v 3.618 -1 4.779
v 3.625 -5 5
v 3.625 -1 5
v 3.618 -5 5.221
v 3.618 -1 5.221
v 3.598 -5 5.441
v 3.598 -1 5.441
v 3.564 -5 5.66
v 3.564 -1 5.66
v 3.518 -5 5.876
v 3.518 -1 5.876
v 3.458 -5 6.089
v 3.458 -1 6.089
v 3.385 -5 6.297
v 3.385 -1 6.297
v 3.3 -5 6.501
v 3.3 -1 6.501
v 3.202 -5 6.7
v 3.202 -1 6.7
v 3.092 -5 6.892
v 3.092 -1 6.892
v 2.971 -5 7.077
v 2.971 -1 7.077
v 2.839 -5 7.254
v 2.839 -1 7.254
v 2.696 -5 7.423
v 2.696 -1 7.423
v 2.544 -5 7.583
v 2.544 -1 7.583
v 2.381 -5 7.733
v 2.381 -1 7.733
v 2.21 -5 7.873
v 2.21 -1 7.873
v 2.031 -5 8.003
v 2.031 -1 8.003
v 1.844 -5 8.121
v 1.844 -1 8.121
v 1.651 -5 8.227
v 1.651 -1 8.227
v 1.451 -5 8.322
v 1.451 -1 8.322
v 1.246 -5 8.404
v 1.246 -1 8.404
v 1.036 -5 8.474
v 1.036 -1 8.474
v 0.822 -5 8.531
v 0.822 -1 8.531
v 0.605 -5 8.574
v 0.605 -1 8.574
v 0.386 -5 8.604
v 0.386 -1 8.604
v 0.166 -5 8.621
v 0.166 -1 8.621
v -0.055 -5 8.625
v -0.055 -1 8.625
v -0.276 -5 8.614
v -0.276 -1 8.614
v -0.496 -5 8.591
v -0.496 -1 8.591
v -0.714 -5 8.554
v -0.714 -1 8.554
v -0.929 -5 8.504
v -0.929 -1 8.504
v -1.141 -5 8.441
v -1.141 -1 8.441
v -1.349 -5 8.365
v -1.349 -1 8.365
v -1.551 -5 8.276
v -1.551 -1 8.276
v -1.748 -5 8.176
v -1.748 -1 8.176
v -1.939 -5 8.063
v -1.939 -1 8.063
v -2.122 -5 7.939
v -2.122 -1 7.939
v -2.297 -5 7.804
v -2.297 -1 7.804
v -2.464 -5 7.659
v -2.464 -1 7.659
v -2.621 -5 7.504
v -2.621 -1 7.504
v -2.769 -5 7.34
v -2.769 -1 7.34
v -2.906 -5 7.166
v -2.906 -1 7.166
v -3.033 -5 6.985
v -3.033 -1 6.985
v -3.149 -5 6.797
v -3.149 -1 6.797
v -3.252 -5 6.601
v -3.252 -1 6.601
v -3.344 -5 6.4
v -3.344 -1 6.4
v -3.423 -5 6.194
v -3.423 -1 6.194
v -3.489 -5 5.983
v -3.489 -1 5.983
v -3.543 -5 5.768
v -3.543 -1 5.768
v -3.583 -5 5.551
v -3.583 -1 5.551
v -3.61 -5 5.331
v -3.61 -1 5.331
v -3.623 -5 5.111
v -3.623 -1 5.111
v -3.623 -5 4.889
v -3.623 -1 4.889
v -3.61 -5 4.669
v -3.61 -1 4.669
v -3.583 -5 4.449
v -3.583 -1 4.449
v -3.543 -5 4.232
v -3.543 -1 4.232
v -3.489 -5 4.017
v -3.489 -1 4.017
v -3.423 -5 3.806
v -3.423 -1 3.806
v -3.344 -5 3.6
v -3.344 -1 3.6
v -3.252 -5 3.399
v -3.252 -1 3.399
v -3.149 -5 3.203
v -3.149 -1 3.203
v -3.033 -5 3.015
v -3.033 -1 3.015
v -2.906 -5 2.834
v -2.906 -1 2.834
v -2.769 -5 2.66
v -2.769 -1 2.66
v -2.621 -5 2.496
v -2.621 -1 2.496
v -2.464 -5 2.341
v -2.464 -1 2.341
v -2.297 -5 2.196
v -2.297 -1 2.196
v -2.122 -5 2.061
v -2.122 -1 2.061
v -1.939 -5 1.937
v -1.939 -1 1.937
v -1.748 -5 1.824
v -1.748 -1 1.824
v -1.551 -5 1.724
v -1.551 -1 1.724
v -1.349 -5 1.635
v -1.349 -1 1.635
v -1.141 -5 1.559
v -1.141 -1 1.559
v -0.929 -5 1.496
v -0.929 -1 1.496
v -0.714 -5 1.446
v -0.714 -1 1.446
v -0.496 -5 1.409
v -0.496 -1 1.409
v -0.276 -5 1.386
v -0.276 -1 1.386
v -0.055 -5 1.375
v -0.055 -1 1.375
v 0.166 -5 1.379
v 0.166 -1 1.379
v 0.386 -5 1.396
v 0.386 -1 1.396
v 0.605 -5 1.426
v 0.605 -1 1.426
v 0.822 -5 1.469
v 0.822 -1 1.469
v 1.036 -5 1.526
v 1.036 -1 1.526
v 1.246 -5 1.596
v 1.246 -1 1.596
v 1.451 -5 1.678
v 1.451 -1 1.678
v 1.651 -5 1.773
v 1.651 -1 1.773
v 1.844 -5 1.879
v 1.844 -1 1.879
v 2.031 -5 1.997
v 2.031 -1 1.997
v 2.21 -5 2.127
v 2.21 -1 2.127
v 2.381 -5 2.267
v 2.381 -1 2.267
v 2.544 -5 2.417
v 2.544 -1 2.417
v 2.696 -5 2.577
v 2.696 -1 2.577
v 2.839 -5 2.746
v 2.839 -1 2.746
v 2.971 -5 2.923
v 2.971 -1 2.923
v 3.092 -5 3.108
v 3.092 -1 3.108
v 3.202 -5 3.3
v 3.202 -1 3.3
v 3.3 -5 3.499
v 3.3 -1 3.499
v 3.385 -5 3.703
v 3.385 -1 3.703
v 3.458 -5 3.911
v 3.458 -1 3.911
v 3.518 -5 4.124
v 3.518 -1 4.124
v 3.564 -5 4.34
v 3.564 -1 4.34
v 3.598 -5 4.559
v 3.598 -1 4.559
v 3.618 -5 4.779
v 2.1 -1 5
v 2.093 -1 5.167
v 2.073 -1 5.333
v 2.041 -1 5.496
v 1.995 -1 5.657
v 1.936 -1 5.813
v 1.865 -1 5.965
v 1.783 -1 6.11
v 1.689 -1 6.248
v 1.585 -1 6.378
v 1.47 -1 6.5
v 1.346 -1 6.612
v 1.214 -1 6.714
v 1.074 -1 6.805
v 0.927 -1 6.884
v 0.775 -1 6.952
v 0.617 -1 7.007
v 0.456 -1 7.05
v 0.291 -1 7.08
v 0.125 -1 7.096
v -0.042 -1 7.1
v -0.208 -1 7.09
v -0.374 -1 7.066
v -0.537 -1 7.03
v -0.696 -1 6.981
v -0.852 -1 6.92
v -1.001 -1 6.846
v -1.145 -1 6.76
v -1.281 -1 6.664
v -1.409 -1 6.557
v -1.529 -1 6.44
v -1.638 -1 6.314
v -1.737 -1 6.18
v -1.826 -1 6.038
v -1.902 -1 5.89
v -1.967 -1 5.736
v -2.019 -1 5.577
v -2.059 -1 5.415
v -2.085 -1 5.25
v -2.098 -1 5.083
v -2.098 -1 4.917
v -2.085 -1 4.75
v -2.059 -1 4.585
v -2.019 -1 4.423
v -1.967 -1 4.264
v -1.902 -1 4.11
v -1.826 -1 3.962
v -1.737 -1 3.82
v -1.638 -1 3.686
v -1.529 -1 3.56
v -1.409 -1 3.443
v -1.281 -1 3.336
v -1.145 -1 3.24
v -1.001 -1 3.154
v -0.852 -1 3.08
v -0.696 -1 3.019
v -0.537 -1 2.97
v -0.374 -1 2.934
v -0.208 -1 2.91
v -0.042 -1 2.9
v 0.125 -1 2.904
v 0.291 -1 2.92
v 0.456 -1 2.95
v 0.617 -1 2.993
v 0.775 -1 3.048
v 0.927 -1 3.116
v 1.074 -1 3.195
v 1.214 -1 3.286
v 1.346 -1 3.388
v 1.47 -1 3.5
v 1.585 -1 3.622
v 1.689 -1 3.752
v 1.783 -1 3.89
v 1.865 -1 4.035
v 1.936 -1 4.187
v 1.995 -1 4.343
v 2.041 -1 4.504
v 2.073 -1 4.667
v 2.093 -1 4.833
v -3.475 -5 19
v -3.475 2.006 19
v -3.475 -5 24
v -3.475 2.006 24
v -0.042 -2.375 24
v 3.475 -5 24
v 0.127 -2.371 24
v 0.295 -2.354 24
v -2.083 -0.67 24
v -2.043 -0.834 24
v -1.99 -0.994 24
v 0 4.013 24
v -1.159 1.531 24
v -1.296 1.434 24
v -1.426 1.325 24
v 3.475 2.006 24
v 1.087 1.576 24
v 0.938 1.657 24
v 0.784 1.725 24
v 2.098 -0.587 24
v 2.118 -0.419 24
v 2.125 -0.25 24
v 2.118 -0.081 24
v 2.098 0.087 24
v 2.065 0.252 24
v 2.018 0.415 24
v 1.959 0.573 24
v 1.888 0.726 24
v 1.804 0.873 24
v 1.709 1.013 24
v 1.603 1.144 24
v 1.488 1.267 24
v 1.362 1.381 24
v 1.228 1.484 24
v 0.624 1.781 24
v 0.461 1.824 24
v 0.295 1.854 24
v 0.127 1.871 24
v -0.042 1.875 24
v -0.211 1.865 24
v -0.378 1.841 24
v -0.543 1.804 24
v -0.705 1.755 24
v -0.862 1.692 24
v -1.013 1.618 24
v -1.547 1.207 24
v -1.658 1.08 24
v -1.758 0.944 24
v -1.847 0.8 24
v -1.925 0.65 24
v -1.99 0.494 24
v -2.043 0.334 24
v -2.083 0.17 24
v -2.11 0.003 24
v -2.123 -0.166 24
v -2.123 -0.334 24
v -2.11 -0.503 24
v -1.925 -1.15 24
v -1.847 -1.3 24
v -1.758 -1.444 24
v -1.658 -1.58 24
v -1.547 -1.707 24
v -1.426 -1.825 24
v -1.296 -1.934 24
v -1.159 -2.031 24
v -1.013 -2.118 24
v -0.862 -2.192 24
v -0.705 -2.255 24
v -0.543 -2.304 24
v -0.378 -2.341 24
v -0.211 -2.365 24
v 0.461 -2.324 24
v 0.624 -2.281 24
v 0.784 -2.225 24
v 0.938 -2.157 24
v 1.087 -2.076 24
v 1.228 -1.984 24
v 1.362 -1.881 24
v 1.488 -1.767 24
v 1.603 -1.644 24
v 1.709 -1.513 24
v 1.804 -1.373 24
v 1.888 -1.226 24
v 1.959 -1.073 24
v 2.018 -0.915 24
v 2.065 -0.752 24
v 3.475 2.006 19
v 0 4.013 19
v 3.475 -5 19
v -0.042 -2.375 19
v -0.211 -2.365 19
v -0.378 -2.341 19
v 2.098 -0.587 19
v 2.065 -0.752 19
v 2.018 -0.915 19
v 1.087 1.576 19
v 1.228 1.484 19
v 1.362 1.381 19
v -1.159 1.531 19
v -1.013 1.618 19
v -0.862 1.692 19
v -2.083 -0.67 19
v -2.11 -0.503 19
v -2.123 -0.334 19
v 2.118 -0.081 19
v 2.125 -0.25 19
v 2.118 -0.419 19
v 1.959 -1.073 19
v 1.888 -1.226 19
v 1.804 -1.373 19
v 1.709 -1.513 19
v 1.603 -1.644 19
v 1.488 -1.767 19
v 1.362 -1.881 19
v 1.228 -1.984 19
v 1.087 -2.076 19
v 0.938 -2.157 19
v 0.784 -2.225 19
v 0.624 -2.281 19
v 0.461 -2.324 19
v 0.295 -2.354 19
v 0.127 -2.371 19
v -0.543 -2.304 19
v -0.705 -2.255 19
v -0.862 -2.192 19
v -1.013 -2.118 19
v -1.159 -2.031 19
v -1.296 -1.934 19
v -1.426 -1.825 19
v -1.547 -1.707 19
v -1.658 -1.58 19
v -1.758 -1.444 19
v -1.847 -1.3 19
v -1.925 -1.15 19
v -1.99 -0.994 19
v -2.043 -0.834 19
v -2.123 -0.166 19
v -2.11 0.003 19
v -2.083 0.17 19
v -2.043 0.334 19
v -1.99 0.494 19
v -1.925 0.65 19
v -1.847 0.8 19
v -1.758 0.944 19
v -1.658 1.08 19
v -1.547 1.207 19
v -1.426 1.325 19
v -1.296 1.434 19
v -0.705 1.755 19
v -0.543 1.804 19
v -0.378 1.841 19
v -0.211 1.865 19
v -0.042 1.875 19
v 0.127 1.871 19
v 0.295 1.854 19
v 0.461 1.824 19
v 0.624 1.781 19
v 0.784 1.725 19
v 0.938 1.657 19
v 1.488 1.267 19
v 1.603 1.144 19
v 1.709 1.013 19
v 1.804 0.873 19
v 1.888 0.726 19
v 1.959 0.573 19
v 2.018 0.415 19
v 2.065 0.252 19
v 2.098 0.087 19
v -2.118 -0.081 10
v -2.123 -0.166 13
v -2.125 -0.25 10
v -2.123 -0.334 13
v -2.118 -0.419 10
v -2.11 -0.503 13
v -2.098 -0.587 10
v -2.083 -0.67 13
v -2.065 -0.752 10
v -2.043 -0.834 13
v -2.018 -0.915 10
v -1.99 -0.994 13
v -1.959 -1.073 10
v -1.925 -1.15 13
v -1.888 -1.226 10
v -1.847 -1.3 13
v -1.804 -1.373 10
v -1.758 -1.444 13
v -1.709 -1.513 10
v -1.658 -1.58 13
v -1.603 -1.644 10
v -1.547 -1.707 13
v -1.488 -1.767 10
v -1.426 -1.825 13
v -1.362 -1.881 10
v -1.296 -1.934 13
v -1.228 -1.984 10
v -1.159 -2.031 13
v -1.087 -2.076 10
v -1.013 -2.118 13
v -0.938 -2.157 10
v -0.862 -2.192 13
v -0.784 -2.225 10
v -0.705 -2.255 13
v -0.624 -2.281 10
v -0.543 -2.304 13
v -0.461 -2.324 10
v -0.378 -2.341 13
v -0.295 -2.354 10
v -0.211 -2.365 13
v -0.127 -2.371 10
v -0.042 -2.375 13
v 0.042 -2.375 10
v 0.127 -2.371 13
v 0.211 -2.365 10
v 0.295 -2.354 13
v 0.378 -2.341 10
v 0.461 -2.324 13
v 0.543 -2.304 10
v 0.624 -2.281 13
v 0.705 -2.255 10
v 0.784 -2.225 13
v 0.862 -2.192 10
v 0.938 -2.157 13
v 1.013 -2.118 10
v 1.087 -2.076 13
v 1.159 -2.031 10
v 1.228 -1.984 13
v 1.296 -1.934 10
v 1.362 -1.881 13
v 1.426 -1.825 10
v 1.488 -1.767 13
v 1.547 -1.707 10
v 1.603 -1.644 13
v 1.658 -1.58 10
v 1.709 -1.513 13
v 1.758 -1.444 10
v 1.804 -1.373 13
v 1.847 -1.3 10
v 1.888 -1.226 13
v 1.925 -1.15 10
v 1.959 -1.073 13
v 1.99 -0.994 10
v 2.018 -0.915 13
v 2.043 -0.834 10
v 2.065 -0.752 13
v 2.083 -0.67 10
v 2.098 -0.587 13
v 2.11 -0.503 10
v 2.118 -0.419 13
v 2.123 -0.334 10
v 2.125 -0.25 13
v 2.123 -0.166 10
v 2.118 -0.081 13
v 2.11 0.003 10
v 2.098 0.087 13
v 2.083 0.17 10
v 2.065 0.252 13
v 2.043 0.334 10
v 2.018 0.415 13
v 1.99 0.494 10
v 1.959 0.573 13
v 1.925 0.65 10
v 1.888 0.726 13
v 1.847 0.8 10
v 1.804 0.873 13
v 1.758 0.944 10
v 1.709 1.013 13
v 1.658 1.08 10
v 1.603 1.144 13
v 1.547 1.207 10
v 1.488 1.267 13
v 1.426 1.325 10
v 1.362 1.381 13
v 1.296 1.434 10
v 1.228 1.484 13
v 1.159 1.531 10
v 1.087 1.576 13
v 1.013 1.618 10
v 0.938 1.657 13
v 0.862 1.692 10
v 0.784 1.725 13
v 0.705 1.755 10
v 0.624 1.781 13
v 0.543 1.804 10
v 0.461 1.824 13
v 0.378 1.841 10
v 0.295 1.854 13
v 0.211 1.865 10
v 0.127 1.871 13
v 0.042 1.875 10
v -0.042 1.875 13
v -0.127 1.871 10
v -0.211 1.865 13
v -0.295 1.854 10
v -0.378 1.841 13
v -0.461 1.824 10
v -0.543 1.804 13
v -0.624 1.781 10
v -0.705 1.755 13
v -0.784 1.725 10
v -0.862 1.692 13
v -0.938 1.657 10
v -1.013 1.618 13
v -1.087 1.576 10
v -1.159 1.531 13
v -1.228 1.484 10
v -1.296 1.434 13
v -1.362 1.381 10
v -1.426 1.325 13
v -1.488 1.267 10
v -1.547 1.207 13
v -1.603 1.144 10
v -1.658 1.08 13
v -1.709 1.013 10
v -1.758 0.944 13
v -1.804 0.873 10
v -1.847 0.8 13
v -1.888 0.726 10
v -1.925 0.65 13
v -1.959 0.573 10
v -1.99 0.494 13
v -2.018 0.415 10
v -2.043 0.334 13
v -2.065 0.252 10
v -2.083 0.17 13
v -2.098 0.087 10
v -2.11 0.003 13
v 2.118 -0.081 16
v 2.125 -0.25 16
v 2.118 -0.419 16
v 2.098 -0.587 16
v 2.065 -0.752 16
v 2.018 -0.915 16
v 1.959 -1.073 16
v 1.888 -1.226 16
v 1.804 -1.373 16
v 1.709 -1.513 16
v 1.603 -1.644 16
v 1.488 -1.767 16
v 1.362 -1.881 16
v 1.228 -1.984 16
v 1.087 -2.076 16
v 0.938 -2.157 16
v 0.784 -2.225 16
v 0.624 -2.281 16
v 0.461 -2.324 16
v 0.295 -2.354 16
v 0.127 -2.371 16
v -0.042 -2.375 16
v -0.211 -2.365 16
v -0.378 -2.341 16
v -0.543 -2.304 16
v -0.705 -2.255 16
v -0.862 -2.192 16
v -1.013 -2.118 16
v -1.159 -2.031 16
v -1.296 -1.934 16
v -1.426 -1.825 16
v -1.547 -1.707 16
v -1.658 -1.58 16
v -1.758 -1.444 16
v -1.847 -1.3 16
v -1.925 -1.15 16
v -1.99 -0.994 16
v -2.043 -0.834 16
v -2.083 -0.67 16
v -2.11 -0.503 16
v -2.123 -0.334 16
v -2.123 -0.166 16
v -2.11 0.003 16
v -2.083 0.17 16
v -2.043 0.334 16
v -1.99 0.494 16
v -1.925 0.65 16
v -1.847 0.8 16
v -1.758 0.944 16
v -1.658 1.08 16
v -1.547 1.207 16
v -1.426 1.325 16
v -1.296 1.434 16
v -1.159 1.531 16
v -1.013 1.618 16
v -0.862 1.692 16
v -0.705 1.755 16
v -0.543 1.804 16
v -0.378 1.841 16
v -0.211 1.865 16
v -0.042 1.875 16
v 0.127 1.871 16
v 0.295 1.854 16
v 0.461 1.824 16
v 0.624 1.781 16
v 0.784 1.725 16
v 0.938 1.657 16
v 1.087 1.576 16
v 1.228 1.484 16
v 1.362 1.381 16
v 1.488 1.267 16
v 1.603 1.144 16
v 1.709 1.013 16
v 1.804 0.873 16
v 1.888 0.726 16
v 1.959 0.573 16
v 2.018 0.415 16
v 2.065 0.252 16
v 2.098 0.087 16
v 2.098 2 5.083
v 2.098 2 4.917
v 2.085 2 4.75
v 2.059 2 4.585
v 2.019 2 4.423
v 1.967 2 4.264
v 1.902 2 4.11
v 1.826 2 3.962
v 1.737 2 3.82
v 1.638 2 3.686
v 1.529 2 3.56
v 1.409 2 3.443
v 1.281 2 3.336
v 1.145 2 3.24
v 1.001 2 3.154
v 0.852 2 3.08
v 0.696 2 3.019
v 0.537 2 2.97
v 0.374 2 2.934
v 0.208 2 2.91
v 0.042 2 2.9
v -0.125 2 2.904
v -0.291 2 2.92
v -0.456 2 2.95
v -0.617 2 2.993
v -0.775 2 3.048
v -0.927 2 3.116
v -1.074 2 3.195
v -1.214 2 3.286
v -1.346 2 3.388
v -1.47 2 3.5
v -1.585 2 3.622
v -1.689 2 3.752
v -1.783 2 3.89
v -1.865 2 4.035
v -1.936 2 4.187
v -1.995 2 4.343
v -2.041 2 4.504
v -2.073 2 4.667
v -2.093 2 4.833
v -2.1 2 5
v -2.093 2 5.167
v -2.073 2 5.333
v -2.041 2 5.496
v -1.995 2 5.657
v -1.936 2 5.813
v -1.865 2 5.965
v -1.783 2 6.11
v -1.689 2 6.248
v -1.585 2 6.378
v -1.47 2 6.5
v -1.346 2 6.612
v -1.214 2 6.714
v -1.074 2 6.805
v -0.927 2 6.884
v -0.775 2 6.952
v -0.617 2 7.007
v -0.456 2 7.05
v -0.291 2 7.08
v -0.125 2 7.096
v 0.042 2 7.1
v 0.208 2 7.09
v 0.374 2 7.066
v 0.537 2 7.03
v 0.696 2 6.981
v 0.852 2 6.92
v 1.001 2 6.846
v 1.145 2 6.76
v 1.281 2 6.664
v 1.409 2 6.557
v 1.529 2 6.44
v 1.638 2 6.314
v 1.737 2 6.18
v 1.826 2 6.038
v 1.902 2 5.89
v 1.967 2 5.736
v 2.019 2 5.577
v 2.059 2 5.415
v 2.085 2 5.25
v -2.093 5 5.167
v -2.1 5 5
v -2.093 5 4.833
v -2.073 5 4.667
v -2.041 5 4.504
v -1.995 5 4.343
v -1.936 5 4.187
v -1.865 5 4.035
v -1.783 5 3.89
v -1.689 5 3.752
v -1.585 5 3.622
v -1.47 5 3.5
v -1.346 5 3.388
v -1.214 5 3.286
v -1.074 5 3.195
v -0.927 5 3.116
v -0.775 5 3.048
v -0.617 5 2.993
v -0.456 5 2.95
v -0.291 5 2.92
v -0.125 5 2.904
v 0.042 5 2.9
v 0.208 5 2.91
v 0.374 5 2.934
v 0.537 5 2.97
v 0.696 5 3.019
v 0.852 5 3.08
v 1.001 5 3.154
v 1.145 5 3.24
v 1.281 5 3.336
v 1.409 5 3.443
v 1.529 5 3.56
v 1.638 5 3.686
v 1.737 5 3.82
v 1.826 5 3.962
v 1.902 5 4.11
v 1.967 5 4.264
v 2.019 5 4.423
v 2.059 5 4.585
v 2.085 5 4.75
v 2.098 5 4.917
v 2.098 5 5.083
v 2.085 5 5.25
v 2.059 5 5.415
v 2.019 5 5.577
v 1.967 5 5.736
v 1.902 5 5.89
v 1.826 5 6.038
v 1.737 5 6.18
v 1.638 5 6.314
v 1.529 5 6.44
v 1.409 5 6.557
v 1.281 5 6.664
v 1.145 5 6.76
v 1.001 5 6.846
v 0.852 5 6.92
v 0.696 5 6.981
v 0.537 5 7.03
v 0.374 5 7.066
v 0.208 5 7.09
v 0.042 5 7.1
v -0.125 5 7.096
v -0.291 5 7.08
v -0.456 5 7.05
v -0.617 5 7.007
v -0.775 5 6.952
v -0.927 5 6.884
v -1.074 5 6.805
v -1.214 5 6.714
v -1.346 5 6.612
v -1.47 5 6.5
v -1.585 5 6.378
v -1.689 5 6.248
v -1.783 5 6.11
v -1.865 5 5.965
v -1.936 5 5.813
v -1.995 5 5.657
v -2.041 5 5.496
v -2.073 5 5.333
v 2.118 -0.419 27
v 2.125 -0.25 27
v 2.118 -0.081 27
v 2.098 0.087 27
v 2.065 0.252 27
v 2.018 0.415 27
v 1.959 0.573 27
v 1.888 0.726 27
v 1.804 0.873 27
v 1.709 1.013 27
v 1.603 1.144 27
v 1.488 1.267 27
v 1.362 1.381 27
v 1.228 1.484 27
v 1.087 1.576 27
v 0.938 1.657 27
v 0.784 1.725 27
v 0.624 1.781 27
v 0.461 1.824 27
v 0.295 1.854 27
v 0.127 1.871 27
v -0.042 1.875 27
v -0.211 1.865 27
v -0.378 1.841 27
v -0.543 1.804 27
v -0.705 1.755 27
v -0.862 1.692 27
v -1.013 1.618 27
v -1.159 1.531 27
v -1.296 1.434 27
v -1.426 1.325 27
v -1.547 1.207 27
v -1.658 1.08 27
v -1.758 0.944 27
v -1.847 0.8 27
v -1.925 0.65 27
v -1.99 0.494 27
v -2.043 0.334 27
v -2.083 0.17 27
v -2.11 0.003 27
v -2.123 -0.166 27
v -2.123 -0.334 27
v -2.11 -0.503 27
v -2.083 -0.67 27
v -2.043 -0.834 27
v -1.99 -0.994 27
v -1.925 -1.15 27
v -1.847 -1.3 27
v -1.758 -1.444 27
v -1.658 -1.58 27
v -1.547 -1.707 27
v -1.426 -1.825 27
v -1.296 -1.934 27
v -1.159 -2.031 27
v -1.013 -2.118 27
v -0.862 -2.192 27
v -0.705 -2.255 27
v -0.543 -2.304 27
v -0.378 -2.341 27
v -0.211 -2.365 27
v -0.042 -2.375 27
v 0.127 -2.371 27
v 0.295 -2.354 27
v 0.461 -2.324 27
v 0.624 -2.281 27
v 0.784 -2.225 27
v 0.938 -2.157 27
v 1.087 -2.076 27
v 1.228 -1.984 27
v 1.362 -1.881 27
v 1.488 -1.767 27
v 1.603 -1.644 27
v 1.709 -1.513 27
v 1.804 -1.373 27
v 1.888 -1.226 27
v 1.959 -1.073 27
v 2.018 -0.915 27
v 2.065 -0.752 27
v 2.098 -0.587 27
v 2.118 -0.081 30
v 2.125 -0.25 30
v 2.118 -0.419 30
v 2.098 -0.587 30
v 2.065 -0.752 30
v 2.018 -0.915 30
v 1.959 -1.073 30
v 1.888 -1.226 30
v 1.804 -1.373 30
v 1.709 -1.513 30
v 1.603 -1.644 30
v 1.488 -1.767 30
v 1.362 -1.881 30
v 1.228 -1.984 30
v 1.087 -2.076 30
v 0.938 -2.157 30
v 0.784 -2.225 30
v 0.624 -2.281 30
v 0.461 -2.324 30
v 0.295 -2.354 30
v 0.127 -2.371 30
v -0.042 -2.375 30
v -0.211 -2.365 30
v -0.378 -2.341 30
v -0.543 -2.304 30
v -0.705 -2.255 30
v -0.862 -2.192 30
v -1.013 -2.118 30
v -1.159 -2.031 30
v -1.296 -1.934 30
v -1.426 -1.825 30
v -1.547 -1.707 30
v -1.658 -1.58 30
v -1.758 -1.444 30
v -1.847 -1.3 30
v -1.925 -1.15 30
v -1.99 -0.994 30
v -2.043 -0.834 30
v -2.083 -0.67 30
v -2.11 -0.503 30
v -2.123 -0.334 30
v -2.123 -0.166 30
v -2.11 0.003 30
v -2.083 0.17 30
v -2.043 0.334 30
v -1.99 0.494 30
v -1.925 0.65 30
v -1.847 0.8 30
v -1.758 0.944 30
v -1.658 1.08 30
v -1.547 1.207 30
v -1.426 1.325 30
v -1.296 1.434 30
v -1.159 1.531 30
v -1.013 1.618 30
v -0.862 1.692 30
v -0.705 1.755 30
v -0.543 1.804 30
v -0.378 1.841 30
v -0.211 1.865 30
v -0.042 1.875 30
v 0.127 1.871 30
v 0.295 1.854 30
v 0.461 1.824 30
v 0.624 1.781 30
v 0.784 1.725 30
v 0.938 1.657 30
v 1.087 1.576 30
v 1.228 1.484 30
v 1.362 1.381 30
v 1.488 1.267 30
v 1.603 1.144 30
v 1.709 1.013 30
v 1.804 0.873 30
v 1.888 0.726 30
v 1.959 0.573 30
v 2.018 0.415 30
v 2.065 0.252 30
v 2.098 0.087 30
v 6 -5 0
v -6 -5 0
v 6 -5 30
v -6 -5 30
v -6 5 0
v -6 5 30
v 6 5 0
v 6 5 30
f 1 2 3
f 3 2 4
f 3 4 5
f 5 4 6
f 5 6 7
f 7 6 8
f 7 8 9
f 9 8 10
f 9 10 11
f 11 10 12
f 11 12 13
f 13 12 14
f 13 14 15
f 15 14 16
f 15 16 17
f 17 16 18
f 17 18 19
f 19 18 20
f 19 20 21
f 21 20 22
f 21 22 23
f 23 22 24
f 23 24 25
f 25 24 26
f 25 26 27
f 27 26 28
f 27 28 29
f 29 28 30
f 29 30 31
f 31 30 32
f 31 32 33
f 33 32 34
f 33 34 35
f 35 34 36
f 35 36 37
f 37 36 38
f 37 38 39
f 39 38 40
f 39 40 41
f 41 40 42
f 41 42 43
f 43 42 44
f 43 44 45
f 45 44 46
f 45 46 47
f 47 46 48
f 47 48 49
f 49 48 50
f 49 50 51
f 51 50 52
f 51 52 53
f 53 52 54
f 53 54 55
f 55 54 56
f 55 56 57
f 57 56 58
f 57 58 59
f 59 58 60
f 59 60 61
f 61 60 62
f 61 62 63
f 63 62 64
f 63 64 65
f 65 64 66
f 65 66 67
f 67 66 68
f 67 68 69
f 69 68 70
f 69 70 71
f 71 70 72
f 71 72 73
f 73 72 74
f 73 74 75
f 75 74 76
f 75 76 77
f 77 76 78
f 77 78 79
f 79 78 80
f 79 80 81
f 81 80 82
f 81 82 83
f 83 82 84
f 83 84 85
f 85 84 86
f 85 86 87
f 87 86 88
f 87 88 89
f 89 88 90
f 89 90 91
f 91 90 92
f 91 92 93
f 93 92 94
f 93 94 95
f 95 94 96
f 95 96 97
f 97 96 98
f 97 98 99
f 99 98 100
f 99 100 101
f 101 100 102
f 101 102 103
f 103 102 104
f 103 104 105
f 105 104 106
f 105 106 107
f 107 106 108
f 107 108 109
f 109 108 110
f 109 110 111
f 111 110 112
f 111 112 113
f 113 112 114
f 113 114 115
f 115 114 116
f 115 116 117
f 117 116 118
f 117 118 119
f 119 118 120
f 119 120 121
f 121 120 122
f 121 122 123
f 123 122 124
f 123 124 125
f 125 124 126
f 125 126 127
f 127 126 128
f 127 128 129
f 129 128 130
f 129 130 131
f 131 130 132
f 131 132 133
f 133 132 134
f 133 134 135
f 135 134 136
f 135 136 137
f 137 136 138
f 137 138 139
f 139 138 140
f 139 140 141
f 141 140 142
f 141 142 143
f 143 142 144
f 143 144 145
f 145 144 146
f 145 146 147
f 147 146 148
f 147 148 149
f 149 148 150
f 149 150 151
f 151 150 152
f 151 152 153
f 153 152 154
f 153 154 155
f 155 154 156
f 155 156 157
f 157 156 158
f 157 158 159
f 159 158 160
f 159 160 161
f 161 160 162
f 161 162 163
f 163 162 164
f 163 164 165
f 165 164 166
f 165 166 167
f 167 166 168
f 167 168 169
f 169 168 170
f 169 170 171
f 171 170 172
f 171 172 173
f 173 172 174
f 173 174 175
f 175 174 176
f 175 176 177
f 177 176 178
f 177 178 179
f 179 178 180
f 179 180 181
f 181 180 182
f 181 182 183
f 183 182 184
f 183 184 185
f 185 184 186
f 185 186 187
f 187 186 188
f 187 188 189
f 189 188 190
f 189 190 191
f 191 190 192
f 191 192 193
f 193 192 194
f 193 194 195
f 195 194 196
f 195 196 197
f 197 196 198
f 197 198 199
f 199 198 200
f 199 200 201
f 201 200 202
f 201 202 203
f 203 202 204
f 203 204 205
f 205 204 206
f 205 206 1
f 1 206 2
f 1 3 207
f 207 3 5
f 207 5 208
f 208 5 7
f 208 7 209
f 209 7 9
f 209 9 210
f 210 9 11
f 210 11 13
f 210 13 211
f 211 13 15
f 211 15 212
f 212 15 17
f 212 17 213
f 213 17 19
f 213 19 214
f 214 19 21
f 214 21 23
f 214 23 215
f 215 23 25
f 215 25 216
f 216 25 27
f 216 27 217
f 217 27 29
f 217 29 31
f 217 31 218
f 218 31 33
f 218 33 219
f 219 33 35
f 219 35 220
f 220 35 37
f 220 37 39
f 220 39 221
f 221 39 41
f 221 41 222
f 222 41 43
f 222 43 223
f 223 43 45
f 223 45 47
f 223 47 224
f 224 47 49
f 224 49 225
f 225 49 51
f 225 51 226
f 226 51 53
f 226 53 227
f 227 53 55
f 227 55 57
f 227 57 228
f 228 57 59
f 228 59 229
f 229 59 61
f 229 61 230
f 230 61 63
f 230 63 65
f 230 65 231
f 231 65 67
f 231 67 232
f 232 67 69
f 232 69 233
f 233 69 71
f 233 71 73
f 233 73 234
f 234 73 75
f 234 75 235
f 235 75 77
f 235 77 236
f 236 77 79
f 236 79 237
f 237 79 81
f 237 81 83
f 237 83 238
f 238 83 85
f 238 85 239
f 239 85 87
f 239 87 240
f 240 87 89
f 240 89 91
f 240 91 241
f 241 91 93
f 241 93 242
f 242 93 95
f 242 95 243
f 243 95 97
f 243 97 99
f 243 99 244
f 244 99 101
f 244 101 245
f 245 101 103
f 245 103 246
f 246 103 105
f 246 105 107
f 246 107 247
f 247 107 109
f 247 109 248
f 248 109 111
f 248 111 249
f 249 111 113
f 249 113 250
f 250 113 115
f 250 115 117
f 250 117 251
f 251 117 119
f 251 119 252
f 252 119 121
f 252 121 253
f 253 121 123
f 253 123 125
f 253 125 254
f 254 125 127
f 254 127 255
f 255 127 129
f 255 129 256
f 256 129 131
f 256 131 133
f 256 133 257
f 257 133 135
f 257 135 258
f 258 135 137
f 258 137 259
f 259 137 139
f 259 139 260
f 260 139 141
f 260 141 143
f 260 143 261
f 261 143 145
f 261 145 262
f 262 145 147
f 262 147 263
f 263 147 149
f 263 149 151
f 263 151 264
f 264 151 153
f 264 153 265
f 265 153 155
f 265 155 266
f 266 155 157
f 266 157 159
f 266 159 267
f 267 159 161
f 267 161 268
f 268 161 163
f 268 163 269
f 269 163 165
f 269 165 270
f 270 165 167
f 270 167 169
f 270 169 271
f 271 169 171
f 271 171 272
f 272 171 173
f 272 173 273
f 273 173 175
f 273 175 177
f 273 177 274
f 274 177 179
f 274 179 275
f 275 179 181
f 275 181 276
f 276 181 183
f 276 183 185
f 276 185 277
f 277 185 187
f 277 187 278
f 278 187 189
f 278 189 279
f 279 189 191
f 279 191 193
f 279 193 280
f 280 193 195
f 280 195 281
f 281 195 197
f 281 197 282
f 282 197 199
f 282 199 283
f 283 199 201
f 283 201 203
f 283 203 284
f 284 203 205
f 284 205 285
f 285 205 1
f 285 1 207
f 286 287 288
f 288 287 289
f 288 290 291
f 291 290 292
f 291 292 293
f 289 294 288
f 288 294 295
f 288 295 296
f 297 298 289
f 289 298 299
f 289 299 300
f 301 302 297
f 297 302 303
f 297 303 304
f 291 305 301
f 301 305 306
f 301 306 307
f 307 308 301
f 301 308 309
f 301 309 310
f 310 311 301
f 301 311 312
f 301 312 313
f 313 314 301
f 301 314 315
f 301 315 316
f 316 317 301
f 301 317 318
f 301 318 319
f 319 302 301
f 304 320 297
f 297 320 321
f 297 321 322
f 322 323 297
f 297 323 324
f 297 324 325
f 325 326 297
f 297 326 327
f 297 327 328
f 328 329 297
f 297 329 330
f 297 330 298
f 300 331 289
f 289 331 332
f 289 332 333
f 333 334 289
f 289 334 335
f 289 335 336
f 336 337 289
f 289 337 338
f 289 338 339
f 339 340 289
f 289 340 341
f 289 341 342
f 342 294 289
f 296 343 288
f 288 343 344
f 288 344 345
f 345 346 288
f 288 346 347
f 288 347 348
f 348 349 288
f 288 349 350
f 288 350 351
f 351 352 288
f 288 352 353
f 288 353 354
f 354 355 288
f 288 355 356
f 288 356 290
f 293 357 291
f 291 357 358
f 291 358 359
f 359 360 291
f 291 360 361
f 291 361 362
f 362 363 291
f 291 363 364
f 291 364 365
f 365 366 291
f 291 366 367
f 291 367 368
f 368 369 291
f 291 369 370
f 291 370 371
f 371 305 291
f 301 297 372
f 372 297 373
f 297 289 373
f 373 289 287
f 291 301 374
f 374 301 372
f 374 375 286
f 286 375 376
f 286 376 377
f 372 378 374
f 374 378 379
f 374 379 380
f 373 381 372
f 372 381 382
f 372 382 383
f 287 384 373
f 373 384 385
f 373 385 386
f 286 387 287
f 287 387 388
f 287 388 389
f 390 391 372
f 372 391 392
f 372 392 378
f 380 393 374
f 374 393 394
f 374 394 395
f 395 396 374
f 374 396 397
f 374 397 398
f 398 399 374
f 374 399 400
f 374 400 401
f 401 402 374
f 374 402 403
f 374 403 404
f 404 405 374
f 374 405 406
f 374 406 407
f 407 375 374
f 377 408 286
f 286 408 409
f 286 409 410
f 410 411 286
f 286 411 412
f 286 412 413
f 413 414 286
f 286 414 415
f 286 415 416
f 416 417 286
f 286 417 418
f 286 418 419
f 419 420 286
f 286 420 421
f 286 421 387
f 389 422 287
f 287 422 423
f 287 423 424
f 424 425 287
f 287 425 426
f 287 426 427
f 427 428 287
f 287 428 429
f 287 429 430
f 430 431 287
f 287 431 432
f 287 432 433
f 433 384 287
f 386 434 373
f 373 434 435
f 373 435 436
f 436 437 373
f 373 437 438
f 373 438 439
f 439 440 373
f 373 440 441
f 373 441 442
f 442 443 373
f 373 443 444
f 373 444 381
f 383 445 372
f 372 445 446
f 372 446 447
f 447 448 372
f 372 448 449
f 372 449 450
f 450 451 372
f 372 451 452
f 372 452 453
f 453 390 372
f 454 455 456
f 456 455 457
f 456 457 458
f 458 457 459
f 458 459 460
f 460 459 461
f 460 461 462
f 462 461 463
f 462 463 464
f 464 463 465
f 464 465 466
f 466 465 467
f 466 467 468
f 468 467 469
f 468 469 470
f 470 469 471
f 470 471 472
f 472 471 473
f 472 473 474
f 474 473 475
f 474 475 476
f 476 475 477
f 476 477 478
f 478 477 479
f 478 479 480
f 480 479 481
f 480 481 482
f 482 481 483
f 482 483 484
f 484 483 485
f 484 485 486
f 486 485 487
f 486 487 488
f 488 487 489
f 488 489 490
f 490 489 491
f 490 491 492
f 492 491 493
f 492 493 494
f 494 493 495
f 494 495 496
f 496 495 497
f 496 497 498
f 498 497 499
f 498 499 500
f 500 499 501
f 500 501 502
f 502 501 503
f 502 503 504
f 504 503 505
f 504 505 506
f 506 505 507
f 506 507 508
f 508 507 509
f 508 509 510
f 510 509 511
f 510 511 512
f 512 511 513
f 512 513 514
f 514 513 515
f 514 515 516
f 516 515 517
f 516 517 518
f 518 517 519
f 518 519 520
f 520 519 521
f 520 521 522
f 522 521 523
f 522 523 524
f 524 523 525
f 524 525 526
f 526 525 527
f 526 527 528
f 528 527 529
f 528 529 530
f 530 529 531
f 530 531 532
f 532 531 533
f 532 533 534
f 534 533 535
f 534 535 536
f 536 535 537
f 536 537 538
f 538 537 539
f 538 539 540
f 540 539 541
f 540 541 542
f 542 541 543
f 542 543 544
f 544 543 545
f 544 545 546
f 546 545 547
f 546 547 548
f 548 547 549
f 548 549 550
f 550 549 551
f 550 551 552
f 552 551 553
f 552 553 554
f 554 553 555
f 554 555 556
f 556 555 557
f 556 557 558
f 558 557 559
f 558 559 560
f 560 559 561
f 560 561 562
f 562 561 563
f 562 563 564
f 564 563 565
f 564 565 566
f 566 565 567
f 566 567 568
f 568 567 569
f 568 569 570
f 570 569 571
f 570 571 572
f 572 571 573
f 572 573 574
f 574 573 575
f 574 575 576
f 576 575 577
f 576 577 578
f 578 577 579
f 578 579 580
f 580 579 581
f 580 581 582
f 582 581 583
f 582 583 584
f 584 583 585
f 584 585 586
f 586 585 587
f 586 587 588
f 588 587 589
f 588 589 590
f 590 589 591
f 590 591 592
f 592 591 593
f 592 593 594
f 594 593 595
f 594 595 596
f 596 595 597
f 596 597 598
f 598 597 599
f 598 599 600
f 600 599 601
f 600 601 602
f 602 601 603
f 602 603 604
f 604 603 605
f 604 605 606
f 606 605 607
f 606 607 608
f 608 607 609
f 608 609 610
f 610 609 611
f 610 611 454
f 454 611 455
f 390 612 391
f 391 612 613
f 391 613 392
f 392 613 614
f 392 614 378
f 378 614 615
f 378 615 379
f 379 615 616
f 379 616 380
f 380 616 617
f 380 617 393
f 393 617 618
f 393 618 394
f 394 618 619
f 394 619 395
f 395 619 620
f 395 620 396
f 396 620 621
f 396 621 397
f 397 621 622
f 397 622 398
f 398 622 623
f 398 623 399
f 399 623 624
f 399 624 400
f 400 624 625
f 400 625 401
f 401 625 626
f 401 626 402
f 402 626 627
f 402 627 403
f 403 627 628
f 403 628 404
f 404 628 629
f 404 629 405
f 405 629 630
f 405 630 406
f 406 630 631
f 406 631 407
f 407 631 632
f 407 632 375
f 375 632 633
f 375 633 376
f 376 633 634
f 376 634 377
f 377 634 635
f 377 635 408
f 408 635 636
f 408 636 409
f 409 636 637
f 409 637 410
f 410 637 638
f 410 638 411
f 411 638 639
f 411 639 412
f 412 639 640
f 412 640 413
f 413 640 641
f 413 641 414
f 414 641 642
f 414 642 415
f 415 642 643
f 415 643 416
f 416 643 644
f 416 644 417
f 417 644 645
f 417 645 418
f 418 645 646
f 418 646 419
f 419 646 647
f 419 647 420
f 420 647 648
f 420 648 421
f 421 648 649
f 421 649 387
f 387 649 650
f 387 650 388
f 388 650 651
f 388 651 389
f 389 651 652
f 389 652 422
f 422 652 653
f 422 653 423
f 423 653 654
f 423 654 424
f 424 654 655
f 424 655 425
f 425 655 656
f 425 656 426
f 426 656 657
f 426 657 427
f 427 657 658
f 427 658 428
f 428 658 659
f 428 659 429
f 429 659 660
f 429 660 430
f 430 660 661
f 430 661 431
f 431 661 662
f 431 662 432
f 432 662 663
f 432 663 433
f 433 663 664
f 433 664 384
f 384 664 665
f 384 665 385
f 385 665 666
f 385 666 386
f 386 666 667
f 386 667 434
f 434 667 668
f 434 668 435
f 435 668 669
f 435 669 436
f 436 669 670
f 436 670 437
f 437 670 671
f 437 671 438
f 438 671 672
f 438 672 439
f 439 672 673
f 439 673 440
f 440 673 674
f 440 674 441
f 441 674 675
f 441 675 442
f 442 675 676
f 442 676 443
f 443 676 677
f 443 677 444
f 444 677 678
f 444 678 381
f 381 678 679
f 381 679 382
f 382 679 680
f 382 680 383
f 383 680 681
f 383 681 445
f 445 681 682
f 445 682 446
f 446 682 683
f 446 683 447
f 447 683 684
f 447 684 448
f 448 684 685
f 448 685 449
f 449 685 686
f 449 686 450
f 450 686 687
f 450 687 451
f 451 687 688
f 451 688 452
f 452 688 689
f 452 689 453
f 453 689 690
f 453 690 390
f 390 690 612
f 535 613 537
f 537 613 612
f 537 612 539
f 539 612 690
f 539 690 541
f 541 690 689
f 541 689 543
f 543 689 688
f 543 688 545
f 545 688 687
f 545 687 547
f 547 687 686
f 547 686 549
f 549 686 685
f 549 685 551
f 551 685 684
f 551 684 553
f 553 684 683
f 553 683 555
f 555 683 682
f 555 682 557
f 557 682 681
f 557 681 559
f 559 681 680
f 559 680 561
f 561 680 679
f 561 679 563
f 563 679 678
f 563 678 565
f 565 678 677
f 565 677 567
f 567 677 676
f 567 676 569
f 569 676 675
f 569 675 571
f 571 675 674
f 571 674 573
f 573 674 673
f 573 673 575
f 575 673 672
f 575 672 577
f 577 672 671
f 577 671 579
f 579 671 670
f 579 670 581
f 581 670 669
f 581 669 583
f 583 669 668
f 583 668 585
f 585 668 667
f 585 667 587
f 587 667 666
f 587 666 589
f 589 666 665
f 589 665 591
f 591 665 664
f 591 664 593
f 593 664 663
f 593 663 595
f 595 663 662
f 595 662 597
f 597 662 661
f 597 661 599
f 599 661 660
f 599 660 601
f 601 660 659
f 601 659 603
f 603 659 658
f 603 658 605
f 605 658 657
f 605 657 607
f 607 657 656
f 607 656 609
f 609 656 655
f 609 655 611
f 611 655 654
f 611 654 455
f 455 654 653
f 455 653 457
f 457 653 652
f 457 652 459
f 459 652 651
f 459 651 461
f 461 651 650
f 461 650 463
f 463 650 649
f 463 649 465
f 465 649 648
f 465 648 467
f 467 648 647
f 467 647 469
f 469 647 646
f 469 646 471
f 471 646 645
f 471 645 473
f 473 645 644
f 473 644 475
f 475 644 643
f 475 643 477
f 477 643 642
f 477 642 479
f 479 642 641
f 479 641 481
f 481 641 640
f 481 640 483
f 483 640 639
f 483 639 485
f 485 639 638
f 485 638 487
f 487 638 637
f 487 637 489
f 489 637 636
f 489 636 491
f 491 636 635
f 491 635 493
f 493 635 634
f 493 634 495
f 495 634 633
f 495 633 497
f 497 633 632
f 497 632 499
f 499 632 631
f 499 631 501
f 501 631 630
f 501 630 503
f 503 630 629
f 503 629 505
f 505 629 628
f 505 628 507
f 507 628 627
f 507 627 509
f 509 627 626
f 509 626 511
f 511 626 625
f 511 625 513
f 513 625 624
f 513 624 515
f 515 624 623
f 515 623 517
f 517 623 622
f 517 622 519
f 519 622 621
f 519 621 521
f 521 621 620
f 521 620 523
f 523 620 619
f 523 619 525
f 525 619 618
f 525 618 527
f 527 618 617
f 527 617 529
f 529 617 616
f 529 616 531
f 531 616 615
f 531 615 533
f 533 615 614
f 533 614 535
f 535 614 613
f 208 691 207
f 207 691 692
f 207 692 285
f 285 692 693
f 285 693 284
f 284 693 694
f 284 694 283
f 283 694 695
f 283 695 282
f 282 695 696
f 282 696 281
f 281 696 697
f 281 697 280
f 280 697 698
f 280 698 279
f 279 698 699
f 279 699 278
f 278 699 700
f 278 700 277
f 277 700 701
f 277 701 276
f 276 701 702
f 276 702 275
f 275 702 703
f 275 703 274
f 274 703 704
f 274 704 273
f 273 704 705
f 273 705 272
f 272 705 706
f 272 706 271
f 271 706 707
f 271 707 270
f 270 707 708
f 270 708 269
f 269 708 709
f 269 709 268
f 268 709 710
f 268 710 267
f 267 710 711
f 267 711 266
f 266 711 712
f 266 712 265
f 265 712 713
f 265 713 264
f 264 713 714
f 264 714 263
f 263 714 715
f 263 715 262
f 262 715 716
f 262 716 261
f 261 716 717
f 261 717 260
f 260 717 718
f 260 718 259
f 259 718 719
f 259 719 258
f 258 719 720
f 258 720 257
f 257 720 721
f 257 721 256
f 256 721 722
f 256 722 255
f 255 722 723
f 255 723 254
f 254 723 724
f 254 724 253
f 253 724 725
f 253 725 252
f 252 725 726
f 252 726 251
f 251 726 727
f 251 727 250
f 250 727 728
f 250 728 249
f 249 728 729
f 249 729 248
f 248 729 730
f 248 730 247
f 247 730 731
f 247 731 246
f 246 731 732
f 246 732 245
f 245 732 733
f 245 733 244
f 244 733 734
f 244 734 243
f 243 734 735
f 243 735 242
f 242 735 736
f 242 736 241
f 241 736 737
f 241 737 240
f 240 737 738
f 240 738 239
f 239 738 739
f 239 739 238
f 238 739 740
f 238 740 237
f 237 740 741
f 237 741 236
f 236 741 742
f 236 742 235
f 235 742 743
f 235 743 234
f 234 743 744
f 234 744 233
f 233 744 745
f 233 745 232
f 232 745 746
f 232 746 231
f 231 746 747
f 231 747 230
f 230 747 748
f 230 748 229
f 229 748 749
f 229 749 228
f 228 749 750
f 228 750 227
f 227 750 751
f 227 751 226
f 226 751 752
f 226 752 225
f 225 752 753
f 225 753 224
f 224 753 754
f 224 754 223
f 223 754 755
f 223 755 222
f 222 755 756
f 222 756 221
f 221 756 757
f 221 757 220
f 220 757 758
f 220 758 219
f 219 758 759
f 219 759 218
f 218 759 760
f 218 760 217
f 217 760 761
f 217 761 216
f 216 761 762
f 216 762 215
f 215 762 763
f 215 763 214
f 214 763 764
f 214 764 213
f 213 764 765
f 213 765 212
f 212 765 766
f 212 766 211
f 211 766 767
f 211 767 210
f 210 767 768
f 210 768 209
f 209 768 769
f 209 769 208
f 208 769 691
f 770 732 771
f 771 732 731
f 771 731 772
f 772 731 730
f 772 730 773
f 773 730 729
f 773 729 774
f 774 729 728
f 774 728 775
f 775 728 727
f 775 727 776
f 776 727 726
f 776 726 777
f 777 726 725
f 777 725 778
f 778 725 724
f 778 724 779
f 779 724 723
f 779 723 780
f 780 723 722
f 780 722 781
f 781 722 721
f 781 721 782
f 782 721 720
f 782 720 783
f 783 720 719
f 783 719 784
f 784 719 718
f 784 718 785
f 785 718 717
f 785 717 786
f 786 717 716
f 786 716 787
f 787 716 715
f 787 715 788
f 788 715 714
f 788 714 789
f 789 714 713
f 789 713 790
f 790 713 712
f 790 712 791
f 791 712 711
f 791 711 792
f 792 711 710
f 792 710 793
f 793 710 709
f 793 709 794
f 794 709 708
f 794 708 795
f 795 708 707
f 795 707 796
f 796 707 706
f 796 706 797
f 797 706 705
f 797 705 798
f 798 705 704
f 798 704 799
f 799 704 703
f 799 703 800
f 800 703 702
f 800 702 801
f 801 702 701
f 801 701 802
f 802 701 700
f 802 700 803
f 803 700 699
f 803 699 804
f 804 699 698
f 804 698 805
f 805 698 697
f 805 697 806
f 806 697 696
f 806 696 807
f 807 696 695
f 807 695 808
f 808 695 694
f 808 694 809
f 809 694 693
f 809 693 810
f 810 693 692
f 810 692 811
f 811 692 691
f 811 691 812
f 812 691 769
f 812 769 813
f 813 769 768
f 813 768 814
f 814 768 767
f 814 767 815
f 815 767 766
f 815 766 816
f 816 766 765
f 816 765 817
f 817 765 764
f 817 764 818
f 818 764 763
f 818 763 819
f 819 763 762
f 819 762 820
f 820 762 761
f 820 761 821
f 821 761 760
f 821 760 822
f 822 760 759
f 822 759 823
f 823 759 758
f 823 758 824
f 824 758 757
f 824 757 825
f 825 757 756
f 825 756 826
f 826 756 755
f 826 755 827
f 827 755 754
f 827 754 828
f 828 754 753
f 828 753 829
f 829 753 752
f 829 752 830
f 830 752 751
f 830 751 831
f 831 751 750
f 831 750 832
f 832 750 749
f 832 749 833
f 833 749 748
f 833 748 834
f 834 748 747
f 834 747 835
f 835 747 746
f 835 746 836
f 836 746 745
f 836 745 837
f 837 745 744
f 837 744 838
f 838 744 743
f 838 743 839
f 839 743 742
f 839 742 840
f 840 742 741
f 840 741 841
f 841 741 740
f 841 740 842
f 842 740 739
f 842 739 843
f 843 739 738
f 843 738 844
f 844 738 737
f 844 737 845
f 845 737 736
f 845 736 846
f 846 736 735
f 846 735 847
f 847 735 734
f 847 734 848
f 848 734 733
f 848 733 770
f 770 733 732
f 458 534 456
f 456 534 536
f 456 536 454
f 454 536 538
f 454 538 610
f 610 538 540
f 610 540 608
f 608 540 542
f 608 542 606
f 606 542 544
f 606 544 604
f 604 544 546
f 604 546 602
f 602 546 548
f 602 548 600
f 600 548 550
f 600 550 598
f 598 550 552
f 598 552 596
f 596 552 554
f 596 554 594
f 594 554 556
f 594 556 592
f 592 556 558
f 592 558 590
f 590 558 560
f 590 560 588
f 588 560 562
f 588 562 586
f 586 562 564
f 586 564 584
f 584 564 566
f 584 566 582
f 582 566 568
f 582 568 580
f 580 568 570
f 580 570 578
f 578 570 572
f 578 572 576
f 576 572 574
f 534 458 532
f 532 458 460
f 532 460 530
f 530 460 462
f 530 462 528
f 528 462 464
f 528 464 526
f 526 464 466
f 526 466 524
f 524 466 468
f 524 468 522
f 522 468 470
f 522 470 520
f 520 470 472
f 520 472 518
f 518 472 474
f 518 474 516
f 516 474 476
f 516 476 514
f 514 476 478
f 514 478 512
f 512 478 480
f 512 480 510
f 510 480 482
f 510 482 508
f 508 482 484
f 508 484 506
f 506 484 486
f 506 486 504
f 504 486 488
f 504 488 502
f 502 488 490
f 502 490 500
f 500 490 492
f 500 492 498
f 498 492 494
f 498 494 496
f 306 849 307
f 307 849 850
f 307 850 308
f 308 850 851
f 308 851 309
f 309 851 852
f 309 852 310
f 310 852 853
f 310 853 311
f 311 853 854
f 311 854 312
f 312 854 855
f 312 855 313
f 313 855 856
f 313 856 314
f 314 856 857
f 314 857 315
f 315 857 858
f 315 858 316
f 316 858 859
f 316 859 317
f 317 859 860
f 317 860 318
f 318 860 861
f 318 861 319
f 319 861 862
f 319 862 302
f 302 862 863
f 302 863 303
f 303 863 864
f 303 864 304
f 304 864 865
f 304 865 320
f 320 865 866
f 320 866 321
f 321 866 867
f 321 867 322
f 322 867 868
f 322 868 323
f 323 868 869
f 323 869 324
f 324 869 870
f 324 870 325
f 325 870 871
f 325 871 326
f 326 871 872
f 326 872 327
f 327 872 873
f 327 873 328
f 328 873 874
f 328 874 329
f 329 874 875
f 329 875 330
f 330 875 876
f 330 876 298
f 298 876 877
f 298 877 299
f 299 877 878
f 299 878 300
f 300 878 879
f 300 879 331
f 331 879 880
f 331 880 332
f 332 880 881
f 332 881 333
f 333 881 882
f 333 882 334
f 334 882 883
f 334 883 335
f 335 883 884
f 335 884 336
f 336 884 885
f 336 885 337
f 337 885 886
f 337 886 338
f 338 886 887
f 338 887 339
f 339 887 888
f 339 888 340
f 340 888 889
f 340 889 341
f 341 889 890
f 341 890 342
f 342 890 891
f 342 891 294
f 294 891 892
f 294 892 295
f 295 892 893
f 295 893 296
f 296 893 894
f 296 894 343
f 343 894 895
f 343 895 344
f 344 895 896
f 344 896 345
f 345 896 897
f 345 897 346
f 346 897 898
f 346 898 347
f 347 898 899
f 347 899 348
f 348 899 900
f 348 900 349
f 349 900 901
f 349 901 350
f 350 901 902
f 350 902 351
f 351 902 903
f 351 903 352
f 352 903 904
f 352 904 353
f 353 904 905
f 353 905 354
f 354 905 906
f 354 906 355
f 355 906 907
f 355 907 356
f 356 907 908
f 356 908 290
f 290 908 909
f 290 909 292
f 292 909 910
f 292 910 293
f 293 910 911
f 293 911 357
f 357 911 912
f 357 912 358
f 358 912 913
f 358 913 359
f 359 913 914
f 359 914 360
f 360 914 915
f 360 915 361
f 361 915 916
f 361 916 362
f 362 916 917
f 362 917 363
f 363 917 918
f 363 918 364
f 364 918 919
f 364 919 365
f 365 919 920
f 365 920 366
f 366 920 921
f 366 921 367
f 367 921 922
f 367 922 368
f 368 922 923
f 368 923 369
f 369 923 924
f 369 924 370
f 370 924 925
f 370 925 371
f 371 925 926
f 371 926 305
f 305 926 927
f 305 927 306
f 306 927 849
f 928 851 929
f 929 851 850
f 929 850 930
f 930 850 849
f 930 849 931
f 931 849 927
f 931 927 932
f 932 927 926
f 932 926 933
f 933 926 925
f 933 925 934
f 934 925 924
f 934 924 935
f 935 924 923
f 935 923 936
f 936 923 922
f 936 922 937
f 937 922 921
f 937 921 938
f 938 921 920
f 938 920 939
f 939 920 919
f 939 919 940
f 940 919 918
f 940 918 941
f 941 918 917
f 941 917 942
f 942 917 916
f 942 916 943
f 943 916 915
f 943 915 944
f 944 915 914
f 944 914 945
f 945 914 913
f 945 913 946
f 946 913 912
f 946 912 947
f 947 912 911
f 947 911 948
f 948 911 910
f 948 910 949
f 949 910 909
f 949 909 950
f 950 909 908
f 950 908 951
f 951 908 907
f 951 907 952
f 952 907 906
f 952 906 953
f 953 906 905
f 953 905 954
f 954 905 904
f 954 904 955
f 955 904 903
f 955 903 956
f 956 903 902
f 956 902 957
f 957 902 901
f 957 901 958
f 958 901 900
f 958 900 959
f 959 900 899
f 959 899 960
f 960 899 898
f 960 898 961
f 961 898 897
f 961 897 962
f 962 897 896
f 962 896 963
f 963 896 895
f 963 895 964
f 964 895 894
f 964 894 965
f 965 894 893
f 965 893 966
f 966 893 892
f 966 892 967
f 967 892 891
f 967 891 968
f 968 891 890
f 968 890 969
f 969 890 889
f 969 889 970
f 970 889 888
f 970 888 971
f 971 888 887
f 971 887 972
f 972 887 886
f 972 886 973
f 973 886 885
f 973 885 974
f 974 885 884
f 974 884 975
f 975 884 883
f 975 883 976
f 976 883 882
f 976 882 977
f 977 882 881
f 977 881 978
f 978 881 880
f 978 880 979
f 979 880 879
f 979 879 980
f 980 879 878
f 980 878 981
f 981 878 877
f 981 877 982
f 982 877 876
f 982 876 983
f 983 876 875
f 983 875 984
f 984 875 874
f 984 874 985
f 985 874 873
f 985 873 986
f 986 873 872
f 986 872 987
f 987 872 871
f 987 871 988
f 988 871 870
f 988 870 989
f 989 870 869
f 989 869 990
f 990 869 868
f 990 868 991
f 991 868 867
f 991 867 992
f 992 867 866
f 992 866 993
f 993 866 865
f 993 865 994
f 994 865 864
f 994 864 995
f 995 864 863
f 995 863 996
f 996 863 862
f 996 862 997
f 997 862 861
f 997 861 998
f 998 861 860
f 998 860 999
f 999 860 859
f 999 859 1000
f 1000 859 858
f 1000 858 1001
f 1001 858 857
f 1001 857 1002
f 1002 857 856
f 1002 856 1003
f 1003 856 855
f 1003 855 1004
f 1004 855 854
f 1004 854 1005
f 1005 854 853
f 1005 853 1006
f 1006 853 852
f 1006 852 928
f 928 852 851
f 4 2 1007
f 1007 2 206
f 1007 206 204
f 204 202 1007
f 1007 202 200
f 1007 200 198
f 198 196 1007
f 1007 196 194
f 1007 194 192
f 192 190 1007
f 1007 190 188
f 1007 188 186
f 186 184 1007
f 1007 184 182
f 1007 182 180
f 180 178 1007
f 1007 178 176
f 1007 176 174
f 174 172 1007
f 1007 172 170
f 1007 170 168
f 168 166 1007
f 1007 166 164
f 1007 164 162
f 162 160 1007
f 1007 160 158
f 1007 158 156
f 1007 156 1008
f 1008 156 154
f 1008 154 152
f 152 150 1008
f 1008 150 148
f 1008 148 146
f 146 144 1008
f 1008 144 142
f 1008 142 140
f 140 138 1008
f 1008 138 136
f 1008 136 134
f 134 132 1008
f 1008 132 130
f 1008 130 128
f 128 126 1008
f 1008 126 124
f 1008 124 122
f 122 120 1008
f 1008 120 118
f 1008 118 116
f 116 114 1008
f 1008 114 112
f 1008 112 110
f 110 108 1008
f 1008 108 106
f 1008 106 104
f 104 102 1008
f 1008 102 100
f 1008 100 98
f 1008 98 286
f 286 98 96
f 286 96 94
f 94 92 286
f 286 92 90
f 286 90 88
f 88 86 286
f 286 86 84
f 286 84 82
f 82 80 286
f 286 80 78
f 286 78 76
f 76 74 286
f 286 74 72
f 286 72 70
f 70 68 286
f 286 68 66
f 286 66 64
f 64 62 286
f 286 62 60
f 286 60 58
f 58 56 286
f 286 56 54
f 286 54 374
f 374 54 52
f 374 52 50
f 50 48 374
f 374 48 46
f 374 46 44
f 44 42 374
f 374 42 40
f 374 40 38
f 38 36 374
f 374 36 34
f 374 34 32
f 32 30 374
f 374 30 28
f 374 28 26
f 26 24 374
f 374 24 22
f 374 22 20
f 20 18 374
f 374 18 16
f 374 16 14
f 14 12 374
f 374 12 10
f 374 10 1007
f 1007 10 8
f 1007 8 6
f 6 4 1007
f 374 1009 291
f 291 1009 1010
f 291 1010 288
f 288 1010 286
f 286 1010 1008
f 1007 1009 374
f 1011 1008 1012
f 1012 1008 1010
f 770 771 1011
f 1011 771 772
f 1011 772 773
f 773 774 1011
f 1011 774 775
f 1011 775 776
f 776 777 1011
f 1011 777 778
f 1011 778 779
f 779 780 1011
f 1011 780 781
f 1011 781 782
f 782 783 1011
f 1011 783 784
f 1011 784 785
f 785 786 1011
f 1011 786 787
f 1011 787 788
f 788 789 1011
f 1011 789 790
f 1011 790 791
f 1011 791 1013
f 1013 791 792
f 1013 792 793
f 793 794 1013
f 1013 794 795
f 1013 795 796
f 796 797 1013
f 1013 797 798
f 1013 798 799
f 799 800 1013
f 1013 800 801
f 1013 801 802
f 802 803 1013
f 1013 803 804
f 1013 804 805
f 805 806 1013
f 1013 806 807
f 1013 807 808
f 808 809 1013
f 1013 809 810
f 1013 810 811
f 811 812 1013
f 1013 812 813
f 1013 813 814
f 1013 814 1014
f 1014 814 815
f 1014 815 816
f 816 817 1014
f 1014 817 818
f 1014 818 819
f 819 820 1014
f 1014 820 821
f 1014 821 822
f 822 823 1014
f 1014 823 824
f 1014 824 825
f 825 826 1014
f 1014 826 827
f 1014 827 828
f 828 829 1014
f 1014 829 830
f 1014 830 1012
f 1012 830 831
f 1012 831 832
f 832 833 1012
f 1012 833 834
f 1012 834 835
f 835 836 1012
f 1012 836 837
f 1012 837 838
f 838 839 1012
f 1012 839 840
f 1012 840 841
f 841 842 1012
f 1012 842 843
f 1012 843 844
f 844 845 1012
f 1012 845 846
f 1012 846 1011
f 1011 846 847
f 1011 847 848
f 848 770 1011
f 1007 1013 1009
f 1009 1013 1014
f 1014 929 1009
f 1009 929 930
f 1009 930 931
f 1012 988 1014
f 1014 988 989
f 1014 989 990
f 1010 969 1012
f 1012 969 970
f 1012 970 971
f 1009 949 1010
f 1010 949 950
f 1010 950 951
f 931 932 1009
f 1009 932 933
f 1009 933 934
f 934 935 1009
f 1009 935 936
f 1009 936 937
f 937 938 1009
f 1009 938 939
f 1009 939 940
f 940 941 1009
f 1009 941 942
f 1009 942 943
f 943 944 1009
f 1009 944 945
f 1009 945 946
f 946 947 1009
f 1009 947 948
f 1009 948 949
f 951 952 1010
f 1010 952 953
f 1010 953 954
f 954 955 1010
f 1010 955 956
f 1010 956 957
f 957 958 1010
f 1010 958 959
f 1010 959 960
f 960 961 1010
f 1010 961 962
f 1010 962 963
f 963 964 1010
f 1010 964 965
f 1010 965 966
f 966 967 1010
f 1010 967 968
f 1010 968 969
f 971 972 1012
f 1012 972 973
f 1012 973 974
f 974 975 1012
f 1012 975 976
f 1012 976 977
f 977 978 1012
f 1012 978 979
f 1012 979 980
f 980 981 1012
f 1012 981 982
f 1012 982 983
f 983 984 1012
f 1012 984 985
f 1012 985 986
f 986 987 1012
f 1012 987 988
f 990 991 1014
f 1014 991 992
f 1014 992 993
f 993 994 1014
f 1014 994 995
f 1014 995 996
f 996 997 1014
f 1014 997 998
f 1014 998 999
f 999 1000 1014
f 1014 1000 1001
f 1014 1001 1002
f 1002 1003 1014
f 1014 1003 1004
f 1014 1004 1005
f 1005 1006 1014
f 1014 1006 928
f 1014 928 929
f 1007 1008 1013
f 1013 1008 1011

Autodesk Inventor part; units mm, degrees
ref_plane "YZ Plane" through (0, 0, 0) normal (1, 0, 0) x (0, 1, 0)
ref_plane "XZ Plane" through (0, 0, 0) normal (0, 1, 0) x (-1, 0, 0)
sketch "Sketch1" plane through (0, 0, 0) normal (0, 0, 1) x (1, 0, 0)
  line L0 (-6, -5) -> (6, -5)
  line L1 (6, -5) -> (6, 5)
  line L2 (6, 5) -> (-6, 5)
  line L3 (-6, 5) -> (-6, -5)
  line L4 (-6, -5) -> (6, 5) construction
  line L5 (6, -5) -> (-6, 5) construction
  circle A0 centre (0, -0.25) radius 2.125
  point P0 (0, 0)
  point P1 (0, 0)
  point P2 (0, 0)
  dimension "d0" = 12
  dimension "d1" = 10
  dimension "d2" = 4.25
  dimension "d18" = 0.25
extrude "Extrusion1" add sketch "Sketch1" along normal blind 30
sketch "Sketch2" plane through (-6, -5, 0) normal (0, -1, 0) x (1, 0, 0)
  circle A0 centre (6, 5) radius 2.1
  line L0 (0, 0) -> (12, 0) projected
  point P0 (6, 0)
  point P1 (6, 0)
  dimension "d5" = 4.2
  dimension "d6" = 5
sketch "Sketch3" plane through (0, 0, 0) normal (0, 0, -1) x (-1, 0, 0)
  line L0 (-6, -5) -> (-6, 5) projected
  line L1 (6, -5) -> (-6, -5) projected
  line L2 (6, 5) -> (6, -5) projected
  line L3 (-6, 5) -> (6, 5) projected
  circle A0 centre (0, -0.25) radius 2.125 projected
  point P0 (0, 0)
extrude "Extrusion2" add sketch "Sketch3" against normal blind 10 contours A0
extrude "Extrusion3" cut sketch "Sketch2" against normal through all
ref_plane "Work Plane1" through (0, 0, 24) normal (0, 0, 1) x (1, 0, 0)
sketch "Sketch4" plane through (0, 0, 24) normal (0, 0, 1) x (1, 0, 0)
  line L0 (3.475, -2.0063) -> (0, -4.0126) construction
  line L1 (0, -4.0126) -> (-3.475, -2.0063) construction
  line L2 (-3.475, -2.0063) -> (-3.475, 2.0063)
  line L3 (-3.475, 2.0063) -> (0, 4.0126)
  line L4 (0, 4.0126) -> (3.475, 2.0063)
  line L5 (3.475, 2.0063) -> (3.475, -2.0063)
  line L6 (3.475, -2.0063) -> (3.475, -9.9564)
  line L7 (-3.475, -2.0063) -> (-3.475, -9.9564)
  line L8 (-3.475, -9.9564) -> (3.475, -9.9564)
  point P0 (0, 0)
  point P1 (0, 0)
  dimension "d12" = 6.95
extrude "Extrusion4" cut sketch "Sketch4" against normal blind 5
sketch "Sketch5" plane through (-6, -5, 0) normal (0, -1, 0) x (1, 0, 0)
  circle A0 centre (6, 5) radius 2.1 projected
  circle A1 centre (6, 5) radius 3.625
  point P0 (6, 0)
  dimension "d15" = 7.25
extrude "Extrusion5" cut sketch "Sketch5" against normal blind 4
properties part number "mgn_screw_nut"
